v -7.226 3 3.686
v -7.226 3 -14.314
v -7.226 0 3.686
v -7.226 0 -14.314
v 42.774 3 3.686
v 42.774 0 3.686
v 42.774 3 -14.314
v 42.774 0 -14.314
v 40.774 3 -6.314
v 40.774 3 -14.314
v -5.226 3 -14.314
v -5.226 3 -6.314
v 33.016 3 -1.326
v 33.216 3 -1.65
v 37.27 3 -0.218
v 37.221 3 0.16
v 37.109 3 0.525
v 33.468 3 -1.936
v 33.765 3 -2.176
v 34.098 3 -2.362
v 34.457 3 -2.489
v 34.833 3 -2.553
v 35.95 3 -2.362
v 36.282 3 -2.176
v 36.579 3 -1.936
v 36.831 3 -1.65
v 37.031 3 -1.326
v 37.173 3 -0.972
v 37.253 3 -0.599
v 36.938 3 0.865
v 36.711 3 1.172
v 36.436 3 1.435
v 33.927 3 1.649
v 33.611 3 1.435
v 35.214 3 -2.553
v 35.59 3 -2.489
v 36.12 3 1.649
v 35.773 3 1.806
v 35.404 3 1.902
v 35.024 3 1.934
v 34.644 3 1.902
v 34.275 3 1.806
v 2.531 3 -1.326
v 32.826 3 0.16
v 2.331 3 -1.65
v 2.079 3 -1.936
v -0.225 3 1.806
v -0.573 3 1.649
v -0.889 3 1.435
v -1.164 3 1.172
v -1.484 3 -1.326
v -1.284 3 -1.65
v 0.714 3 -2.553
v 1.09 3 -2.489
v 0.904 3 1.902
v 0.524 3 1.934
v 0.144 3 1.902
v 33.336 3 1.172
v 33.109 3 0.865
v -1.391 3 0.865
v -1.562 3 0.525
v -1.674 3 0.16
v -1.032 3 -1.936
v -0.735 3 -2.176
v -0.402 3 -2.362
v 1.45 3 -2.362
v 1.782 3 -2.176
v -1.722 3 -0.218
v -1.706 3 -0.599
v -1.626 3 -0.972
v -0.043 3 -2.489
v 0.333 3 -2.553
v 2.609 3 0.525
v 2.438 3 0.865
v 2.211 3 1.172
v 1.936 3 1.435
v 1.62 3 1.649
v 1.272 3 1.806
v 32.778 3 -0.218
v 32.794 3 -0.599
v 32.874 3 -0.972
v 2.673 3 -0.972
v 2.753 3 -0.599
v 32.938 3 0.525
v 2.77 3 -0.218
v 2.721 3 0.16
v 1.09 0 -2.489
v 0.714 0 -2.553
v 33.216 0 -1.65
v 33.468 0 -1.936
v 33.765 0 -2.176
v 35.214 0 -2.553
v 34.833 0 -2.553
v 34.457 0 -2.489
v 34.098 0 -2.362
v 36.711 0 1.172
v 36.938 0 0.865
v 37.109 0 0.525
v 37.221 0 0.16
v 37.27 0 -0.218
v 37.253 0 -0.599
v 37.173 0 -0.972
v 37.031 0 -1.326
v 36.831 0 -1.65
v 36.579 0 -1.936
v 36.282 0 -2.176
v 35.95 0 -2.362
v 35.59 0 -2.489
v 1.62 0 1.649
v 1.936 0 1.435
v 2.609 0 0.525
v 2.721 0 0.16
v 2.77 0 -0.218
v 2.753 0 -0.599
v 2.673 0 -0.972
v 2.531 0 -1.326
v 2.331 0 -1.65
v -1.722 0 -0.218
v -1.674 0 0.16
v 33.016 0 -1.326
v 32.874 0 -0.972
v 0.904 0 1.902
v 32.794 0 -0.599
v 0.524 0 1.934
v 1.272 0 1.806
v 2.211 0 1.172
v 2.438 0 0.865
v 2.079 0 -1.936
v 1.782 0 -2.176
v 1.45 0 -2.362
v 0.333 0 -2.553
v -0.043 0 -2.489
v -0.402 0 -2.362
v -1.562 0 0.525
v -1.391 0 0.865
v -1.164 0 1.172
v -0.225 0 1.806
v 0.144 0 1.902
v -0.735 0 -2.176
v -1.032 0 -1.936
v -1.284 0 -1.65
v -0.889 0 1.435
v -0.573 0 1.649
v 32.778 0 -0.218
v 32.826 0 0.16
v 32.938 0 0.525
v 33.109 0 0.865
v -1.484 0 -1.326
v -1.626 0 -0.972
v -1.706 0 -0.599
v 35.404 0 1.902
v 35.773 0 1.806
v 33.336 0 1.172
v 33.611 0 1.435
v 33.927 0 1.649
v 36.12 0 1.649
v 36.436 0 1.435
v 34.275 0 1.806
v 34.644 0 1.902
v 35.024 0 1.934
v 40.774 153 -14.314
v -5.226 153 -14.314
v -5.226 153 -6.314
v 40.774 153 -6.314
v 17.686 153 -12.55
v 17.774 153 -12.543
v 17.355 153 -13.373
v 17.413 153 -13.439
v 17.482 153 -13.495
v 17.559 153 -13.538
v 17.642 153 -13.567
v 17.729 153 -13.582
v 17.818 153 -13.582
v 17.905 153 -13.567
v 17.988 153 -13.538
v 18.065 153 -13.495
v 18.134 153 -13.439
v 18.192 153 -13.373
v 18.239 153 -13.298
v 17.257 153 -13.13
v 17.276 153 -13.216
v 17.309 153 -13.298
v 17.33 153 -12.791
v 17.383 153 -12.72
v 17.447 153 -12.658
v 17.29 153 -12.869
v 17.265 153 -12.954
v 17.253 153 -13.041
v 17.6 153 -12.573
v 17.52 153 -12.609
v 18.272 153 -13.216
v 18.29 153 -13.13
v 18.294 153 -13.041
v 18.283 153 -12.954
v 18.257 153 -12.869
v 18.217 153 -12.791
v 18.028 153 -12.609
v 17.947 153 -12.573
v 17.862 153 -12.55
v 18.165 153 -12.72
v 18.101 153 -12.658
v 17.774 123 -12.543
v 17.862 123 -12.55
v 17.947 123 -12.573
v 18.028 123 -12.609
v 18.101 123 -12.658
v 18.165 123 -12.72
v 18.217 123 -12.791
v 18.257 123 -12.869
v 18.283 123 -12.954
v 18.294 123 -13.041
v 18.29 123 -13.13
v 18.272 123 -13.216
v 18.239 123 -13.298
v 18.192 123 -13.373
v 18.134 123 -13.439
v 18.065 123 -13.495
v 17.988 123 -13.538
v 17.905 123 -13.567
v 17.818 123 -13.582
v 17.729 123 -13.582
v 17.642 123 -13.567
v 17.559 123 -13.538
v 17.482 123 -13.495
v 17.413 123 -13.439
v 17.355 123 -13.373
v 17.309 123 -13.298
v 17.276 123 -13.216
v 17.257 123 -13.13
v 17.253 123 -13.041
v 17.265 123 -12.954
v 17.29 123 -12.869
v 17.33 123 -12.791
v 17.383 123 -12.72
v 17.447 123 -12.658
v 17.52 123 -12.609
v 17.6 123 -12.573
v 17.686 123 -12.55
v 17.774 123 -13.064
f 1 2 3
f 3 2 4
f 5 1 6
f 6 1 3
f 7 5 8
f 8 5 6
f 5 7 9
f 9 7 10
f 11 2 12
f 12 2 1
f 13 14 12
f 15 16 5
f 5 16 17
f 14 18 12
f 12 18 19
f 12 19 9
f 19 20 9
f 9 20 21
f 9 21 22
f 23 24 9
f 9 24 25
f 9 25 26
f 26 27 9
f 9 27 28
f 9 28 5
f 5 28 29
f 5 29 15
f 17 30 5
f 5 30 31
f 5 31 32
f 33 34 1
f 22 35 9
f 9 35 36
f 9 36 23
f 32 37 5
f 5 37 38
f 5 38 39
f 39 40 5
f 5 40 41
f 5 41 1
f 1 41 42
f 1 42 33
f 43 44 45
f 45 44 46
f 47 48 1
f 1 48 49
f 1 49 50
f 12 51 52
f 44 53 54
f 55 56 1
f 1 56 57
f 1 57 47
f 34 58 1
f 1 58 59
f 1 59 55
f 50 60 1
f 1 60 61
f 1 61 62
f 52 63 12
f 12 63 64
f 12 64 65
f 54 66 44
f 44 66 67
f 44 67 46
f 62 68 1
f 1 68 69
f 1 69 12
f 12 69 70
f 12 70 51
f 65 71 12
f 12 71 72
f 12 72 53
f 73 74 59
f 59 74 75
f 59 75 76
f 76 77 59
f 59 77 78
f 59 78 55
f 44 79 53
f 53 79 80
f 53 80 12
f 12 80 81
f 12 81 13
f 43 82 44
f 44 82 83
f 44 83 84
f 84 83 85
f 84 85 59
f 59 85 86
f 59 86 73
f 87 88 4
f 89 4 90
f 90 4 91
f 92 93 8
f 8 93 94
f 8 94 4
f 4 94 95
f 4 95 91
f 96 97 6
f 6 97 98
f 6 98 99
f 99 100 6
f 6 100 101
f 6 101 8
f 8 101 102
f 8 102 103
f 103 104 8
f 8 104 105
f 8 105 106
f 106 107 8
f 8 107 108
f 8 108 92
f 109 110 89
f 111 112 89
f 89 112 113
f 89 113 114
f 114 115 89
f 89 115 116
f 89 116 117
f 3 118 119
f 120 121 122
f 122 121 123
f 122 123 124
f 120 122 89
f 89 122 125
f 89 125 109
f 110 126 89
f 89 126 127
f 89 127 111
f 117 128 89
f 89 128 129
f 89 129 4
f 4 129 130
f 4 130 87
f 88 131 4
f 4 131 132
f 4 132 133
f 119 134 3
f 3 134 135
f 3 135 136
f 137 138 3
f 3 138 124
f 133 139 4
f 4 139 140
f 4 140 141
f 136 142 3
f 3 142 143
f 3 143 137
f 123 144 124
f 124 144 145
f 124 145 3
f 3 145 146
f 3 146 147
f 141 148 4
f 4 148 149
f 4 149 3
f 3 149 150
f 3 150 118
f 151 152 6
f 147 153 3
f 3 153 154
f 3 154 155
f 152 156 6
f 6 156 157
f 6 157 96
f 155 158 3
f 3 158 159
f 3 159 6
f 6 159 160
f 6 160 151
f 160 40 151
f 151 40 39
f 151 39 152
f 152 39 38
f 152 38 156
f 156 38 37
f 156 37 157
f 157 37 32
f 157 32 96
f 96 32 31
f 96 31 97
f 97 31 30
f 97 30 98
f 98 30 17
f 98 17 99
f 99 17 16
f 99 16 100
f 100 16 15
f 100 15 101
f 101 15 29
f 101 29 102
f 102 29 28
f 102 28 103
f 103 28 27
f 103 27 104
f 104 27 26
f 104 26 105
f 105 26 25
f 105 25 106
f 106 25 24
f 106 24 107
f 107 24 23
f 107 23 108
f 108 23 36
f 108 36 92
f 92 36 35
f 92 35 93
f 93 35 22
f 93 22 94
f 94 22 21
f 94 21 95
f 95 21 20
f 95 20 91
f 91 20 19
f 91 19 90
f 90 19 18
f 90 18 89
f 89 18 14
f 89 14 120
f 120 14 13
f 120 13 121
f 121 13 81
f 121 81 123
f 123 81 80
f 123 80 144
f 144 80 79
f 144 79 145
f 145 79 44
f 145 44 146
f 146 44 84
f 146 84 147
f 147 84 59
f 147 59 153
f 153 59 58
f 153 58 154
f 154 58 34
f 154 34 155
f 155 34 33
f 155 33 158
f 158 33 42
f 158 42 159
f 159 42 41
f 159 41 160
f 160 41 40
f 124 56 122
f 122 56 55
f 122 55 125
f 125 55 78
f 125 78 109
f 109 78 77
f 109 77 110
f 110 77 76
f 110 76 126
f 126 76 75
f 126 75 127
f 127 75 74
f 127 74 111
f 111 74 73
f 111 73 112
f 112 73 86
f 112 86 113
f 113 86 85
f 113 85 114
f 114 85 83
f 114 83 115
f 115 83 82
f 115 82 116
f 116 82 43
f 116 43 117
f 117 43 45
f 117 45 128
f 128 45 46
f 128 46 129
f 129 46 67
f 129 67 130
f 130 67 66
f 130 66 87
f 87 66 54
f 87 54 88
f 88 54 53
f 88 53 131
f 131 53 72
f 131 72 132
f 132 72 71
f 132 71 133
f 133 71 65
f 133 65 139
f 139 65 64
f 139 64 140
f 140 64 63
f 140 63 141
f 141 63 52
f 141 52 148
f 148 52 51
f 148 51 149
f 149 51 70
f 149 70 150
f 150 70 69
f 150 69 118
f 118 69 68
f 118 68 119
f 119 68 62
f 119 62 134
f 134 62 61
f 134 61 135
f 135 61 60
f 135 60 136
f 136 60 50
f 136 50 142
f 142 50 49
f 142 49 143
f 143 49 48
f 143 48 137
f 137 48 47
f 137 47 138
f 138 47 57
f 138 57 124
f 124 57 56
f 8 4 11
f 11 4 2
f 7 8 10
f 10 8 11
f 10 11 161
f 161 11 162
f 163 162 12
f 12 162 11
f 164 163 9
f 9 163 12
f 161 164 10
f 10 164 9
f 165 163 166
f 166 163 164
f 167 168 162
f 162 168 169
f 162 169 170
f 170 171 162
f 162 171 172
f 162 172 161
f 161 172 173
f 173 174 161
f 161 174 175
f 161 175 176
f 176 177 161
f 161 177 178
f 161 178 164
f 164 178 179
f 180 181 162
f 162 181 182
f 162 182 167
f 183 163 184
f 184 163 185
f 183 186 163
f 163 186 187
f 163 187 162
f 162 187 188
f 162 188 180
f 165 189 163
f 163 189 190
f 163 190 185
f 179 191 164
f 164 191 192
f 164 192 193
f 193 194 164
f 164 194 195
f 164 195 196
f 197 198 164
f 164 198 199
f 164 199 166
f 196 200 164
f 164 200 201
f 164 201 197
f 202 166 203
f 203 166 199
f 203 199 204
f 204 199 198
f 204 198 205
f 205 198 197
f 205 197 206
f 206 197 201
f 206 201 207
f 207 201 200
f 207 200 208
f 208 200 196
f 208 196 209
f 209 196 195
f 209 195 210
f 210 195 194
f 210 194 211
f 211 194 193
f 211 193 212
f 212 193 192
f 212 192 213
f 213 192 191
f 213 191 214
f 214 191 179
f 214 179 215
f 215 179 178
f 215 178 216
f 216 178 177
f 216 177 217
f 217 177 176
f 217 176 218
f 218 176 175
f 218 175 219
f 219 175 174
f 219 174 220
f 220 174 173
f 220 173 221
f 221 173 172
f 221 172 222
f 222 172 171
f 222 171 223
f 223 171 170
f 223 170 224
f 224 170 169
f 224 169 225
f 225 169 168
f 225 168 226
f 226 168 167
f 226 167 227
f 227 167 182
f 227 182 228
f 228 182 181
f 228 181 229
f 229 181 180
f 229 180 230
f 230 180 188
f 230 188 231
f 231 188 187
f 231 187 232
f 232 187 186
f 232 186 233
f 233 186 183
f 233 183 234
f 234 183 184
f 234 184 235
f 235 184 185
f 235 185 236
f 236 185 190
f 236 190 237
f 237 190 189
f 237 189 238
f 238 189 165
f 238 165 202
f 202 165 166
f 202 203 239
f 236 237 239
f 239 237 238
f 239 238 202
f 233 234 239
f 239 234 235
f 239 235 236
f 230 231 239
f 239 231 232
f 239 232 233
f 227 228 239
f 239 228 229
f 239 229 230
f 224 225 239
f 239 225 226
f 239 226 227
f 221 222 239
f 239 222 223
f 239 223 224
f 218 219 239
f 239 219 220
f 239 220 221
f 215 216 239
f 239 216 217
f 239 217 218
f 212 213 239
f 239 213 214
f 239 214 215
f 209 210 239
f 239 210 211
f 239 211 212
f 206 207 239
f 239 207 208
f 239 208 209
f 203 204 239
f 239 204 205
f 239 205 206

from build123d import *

# Parameters (mm, degrees)
SKETCH1_W                 = 50
SKETCH1_H                 = 8
BOSS_EXTRUDE1_DEPTH       = 3
F_8_CLEARANCE_HOLE1_D     = 4.4958
F_8_CLEARANCE_HOLE1_DEPTH = 17
F_8_CLEARANCE_HOLE1_TIP   = 1.350674586
SKETCH3_W                 = 50
SKETCH3_H                 = 3
BOSS_EXTRUDE2_DEPTH       = 10
SKETCH5_W                 = 46
SKETCH5_H                 = 8
BOSS_EXTRUDE3_DEPTH       = 150
SKETCH6_R                 = 0.5207
CUT_EXTRUDE1_DEPTH        = 30


with BuildPart() as part:
    # Sketch1 → Boss-Extrude1 (new body)
    with BuildSketch(Plane(origin=(0, 0, 0), x_dir=(1, 0, 0), z_dir=(0, 1, 0))):
        with Locations((17.773632998, 0.313559322)):
            Rectangle(SKETCH1_W, SKETCH1_H)
    extrude(amount=BOSS_EXTRUDE1_DEPTH)

    # #8 Clearance Hole1
    with Locations(Plane(origin=(0.523632998, 3, -0.313559322), x_dir=(0, 0, 1), z_dir=(0, 1, 0))):
        with Locations((0, 0), (0, 34.5)):
            Hole(F_8_CLEARANCE_HOLE1_D / 2, depth=F_8_CLEARANCE_HOLE1_DEPTH)
            with Locations((0, 0, -(F_8_CLEARANCE_HOLE1_DEPTH + F_8_CLEARANCE_HOLE1_TIP / 2))):  # 118° drill point
                Cone(0, F_8_CLEARANCE_HOLE1_D / 2, F_8_CLEARANCE_HOLE1_TIP, mode=Mode.SUBTRACT)

    # Sketch3 → Boss-Extrude2 (add)
    with BuildSketch(Plane(origin=(0, 0, -4.313559322), x_dir=(-1, 0, 0), z_dir=(0, 0, -1))):
        with Locations((-17.773632998, 1.5)):
            Rectangle(SKETCH3_W, SKETCH3_H)
    extrude(amount=BOSS_EXTRUDE2_DEPTH)

    # Sketch5 → Boss-Extrude3 (add)
    with BuildSketch(Plane(origin=(0, 3, 0), x_dir=(1, 0, 0), z_dir=(0, 1, 0))):
        with Locations((17.773632998, 10.313559322)):
            Rectangle(SKETCH5_W, SKETCH5_H)
    extrude(amount=BOSS_EXTRUDE3_DEPTH)

    # Sketch6 → Cut-Extrude1 (cut)
    with BuildSketch(Plane(origin=(0, 153, 0), x_dir=(1, 0, 0), z_dir=(0, 1, 0))):
        with Locations((17.773632998, 13.063559322)):
            Circle(SKETCH6_R)
    extrude(amount=-CUT_EXTRUDE1_DEPTH, mode=Mode.SUBTRACT)


solid = part.part
